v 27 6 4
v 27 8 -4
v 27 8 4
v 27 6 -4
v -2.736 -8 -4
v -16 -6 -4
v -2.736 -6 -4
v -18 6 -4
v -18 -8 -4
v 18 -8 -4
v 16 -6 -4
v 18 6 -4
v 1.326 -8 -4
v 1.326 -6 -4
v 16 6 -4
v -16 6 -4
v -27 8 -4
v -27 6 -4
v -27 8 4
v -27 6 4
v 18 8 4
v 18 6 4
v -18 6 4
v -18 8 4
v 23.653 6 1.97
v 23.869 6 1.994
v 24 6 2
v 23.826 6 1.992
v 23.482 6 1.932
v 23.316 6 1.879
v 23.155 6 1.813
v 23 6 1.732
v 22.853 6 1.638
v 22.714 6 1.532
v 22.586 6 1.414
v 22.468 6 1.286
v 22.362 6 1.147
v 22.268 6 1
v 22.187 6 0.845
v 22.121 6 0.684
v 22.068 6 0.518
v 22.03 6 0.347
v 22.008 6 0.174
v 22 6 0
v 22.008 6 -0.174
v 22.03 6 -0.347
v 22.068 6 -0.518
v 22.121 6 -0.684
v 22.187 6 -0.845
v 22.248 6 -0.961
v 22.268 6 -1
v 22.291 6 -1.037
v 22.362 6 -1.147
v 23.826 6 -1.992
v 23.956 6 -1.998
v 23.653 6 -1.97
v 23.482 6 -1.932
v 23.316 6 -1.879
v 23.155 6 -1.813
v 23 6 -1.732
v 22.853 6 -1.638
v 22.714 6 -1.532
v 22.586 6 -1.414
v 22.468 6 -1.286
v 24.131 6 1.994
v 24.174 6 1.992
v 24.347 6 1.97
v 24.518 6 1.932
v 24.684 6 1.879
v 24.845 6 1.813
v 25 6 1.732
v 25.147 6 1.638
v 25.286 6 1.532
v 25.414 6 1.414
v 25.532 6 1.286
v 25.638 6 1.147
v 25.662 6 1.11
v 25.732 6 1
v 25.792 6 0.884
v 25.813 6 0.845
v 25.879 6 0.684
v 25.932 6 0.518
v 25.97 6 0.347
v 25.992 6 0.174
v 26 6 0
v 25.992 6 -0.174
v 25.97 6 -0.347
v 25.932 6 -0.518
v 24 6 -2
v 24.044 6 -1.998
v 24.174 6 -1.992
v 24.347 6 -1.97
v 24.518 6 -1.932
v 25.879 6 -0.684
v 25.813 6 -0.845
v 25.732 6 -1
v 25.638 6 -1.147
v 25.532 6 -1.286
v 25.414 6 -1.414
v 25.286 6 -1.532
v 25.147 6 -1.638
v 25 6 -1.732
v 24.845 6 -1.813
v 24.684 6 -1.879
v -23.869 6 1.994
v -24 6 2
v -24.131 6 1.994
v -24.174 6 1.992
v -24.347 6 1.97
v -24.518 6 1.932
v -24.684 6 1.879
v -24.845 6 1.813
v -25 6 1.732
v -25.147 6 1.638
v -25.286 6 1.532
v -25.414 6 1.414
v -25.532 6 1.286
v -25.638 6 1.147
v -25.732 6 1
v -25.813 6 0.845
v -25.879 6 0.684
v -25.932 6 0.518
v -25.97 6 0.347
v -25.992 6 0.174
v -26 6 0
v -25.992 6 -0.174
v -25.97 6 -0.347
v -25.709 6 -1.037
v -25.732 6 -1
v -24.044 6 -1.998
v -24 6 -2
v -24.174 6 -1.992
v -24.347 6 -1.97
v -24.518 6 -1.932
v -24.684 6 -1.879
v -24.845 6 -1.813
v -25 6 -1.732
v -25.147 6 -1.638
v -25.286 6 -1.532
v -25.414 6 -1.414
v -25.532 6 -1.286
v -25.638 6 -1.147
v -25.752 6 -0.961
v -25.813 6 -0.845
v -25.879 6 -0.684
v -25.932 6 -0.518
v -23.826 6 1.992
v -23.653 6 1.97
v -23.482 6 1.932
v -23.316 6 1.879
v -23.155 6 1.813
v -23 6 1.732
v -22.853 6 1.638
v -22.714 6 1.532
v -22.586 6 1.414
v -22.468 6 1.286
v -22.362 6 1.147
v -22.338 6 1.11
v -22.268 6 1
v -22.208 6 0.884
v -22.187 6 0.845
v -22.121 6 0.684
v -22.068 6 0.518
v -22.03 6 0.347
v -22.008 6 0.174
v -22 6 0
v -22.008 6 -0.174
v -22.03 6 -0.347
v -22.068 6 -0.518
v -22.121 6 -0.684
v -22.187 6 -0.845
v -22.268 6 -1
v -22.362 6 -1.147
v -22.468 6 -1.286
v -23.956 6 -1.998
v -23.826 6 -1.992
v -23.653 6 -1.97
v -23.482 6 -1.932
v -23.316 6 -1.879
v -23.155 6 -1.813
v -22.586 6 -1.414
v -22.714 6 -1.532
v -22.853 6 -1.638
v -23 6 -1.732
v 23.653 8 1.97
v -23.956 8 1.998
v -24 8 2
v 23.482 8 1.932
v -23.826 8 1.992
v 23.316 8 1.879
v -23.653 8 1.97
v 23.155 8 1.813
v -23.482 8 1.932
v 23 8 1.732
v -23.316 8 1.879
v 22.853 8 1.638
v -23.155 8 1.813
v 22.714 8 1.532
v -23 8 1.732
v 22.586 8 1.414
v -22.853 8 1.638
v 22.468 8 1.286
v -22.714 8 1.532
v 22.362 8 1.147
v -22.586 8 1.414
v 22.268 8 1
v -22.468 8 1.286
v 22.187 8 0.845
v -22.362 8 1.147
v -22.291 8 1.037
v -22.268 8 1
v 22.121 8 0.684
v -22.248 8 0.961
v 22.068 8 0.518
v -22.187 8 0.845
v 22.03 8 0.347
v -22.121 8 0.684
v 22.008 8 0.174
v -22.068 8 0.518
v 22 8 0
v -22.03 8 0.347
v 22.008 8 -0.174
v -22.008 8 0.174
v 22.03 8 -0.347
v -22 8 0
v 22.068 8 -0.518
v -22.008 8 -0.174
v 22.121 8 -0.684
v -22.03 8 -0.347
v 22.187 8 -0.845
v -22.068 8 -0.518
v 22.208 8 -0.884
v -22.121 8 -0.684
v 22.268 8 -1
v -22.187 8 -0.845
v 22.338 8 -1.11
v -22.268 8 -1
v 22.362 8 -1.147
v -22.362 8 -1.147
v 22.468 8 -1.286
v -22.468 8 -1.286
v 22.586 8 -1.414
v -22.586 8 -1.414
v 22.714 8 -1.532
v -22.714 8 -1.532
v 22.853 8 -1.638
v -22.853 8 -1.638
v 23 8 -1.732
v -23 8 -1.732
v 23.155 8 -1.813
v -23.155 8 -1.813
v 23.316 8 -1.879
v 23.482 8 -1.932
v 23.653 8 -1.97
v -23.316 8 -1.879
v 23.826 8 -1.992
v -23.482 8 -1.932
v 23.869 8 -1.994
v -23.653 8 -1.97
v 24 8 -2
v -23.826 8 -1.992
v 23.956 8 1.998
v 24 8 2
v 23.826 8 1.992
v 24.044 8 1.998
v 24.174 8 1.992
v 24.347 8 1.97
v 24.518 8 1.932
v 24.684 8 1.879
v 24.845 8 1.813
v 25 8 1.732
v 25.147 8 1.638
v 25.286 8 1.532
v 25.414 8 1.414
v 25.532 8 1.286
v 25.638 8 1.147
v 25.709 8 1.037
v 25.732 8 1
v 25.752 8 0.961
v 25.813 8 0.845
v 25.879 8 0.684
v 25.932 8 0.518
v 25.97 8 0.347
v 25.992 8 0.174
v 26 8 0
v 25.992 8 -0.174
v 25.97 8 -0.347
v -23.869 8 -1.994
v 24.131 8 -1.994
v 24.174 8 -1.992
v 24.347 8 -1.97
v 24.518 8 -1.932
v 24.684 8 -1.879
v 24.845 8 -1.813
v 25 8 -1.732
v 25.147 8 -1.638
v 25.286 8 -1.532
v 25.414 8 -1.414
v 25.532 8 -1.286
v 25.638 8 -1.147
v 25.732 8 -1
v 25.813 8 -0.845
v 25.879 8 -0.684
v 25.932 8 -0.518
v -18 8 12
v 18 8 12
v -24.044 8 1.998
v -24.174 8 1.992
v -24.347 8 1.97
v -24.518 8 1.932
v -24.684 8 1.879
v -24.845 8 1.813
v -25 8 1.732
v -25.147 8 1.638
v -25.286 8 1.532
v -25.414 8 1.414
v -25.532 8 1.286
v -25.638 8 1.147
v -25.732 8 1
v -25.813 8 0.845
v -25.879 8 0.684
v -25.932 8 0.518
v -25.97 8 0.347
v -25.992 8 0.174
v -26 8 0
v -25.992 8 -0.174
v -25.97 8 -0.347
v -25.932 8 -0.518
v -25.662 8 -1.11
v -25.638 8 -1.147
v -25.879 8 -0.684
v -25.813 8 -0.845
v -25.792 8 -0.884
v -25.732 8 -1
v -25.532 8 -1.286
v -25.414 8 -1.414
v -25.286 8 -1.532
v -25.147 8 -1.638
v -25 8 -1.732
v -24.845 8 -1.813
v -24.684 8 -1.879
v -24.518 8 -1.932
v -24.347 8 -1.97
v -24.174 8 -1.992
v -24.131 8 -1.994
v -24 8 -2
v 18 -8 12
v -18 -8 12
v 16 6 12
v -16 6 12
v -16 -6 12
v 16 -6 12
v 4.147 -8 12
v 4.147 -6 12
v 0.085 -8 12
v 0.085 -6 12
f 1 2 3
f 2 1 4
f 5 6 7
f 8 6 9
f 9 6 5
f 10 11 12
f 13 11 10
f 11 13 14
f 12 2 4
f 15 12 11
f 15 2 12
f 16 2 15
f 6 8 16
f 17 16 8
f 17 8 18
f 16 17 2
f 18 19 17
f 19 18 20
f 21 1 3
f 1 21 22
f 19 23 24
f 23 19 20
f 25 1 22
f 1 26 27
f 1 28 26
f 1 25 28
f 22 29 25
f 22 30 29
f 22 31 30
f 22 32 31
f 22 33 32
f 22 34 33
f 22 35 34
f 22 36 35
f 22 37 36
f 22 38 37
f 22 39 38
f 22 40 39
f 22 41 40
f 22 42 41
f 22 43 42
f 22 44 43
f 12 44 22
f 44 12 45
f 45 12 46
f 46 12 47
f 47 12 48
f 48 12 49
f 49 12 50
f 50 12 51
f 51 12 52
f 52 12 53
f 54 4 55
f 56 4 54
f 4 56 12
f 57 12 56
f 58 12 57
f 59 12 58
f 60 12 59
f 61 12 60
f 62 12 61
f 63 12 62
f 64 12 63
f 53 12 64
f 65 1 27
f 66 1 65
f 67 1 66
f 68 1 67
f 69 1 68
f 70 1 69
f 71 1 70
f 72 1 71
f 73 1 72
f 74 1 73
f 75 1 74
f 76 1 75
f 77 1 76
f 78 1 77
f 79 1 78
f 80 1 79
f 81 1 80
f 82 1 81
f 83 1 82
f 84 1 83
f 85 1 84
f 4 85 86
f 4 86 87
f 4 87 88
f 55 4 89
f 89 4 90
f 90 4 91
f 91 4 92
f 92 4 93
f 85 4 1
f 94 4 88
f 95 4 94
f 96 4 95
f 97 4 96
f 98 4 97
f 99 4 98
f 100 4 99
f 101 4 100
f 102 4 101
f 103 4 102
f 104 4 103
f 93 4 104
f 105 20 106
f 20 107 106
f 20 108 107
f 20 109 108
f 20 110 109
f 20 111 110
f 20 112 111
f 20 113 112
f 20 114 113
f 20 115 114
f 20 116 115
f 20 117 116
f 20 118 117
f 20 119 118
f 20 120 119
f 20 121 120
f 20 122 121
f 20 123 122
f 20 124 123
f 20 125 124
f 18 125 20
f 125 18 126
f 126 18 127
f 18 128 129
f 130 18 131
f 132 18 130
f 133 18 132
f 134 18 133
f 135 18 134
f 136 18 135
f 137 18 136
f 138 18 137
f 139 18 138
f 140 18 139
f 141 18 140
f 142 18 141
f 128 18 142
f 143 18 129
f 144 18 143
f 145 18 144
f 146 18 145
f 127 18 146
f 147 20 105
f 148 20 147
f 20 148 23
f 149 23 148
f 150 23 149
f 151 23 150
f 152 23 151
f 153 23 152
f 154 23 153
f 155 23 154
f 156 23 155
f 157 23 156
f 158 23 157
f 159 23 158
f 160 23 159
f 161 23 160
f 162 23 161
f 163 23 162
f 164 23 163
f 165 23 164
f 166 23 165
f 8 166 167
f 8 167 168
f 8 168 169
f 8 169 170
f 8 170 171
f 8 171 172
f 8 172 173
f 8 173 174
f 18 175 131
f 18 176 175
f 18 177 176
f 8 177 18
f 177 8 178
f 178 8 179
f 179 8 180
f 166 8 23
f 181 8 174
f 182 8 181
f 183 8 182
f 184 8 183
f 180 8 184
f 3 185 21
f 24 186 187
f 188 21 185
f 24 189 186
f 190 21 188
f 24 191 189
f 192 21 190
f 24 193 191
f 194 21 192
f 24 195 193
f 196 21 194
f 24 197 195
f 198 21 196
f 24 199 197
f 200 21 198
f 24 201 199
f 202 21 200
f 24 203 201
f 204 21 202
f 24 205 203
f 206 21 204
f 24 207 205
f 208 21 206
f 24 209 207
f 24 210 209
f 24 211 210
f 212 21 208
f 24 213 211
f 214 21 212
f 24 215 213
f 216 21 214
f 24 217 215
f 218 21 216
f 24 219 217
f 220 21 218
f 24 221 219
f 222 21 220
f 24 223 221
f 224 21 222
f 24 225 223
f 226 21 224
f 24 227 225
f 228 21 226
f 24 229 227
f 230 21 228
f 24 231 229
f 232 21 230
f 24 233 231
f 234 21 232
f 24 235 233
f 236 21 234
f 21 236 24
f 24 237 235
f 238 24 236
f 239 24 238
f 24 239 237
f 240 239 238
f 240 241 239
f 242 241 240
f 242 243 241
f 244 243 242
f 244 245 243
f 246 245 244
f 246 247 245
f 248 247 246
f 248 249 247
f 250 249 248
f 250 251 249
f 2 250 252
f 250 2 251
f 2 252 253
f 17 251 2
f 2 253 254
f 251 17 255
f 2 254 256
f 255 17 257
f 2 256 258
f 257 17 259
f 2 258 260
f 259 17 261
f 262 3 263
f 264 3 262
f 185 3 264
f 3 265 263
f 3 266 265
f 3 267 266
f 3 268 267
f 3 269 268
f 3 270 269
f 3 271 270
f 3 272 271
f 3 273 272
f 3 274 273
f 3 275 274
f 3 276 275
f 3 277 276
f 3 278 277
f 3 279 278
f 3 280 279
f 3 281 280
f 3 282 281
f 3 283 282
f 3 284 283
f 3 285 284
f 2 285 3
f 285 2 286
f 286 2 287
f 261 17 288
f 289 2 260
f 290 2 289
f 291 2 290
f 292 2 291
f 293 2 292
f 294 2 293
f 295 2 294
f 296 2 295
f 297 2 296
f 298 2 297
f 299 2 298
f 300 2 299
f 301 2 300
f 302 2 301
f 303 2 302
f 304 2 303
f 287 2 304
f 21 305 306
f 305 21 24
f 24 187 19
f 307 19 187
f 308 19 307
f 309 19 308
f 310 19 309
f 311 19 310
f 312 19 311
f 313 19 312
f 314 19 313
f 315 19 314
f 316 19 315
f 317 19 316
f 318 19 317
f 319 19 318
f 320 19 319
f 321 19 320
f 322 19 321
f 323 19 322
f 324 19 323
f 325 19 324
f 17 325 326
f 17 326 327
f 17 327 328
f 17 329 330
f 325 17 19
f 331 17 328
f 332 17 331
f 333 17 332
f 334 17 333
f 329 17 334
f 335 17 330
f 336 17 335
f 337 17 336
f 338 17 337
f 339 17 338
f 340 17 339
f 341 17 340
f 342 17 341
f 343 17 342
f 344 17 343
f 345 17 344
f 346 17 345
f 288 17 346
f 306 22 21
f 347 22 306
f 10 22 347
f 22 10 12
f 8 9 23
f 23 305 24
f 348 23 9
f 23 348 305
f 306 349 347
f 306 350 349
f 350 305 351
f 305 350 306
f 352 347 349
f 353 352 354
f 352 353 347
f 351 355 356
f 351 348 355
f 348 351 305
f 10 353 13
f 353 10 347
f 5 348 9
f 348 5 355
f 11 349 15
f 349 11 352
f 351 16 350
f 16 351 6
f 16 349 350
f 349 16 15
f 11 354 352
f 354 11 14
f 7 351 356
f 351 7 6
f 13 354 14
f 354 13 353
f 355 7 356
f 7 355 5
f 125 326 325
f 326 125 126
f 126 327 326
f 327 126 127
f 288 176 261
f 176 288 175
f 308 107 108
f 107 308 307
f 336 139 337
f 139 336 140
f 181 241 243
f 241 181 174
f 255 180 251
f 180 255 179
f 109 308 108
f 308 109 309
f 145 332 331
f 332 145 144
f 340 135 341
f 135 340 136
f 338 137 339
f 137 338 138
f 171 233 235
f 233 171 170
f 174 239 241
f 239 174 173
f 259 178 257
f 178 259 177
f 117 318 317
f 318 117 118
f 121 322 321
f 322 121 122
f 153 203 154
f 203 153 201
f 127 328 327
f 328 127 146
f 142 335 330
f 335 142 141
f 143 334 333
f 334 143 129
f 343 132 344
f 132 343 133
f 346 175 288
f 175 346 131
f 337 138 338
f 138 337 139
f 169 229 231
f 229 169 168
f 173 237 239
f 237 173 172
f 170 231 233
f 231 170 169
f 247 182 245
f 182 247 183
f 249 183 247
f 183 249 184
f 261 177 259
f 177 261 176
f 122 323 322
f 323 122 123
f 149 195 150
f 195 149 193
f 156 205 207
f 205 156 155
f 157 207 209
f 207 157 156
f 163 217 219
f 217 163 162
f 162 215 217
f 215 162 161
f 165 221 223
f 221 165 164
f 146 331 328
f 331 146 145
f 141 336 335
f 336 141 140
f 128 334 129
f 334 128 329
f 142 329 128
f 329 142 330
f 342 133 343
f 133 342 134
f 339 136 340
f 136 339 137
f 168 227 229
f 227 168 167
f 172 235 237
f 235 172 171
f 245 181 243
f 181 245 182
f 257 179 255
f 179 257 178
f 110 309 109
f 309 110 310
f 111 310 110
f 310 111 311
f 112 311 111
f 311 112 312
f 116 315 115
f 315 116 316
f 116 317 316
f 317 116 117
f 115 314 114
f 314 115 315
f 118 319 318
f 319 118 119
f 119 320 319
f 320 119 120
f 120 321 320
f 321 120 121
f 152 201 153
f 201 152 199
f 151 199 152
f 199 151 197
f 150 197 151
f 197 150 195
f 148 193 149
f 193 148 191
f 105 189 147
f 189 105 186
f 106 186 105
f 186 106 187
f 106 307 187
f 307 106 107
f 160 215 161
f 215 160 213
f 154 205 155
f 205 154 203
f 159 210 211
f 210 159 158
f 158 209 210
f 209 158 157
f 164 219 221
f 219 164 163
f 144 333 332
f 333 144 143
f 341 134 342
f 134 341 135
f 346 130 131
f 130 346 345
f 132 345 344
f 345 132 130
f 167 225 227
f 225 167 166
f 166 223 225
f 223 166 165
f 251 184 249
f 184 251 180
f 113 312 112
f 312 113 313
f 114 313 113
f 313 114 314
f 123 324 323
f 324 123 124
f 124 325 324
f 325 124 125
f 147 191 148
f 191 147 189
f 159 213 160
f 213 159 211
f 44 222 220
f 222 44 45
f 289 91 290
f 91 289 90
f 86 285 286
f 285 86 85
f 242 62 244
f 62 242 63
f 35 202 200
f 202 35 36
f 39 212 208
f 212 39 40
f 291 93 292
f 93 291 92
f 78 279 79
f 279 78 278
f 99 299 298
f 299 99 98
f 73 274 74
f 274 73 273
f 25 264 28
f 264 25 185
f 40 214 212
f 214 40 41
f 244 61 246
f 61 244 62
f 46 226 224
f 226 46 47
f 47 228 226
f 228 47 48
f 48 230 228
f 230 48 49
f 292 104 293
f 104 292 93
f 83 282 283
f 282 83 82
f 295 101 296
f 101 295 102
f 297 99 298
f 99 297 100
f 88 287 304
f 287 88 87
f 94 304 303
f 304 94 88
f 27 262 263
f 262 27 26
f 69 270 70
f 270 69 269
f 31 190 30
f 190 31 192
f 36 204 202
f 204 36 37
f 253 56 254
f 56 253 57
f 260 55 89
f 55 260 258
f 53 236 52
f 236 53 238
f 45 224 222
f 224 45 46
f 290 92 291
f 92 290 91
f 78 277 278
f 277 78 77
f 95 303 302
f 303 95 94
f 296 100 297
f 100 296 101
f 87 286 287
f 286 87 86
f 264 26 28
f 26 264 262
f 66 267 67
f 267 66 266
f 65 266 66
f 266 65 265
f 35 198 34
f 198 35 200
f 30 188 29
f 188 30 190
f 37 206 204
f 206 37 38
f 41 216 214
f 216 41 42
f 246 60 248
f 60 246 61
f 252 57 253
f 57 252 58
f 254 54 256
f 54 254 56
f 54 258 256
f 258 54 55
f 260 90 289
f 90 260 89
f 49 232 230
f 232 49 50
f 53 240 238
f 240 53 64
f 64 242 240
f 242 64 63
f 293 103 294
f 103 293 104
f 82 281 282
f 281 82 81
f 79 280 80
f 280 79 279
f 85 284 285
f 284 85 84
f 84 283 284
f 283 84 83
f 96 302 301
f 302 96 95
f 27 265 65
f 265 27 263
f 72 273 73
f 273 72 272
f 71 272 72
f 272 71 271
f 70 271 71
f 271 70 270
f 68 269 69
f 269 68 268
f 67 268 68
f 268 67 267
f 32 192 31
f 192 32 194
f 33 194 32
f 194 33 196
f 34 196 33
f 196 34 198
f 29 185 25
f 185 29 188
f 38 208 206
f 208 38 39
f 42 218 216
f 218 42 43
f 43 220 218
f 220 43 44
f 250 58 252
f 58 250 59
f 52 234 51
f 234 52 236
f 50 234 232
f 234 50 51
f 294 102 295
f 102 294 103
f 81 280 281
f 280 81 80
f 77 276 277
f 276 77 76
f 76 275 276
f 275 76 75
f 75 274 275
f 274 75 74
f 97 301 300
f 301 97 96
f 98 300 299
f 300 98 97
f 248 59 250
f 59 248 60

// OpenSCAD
gridThickness = 1;
gridDepth = 24;

gridLength = 200;
gridSideLength = 32;
gridSpacing = gridSideLength*cos(30);

perimiterWidth = 2*gridSpacing;
perimiterHeight = 3 * gridSideLength;
perimiterThickness = 2;



holeDepth = 4;
holeOffset = 24;
holeRadius = 2;
holeFacets = 72;

rotate([0,180,0])
difference() {
    union() {
        translate([0,7,0])
        cube([54,2,8],center=true);
        translate([0,0,-4])
            cube([36,16,16], center=true);
        

    }
  color("green")
     cube([32,12,30], center=true);
       color("red")
        translate([0,-8,0])
        rotate([0,10,0])
        cube([4,10,30], center=true);
 

    
    translate([holeOffset,7,0])
        rotate([90,0,0])
            cylinder(r=holeRadius,h=holeDepth,
                 center=true, $fn=holeFacets);
    translate([-holeOffset,7,0])
        rotate([90,0,0])
            cylinder(r=holeRadius,h=holeDepth,
                 center=true, $fn=holeFacets);
}



module Holes() {
    translate([holeOffset,0,0])
        cylinder(r=holeRadius,h=holeDepth,
                 center=true, $fn=holeFacets);
    translate([-holeOffset,0,0])
        cylinder(r=holeRadius,h=holeDepth,
                 center=true, $fn=holeFacets);
    translate([0,holeOffset,0])
        cylinder(r=holeRadius,h=holeDepth,
                 center=true, $fn=holeFacets);
    translate([0,-holeOffset,0])
        cylinder(r=holeRadius,h=holeDepth,
                 center=true, $fn=holeFacets);
}
